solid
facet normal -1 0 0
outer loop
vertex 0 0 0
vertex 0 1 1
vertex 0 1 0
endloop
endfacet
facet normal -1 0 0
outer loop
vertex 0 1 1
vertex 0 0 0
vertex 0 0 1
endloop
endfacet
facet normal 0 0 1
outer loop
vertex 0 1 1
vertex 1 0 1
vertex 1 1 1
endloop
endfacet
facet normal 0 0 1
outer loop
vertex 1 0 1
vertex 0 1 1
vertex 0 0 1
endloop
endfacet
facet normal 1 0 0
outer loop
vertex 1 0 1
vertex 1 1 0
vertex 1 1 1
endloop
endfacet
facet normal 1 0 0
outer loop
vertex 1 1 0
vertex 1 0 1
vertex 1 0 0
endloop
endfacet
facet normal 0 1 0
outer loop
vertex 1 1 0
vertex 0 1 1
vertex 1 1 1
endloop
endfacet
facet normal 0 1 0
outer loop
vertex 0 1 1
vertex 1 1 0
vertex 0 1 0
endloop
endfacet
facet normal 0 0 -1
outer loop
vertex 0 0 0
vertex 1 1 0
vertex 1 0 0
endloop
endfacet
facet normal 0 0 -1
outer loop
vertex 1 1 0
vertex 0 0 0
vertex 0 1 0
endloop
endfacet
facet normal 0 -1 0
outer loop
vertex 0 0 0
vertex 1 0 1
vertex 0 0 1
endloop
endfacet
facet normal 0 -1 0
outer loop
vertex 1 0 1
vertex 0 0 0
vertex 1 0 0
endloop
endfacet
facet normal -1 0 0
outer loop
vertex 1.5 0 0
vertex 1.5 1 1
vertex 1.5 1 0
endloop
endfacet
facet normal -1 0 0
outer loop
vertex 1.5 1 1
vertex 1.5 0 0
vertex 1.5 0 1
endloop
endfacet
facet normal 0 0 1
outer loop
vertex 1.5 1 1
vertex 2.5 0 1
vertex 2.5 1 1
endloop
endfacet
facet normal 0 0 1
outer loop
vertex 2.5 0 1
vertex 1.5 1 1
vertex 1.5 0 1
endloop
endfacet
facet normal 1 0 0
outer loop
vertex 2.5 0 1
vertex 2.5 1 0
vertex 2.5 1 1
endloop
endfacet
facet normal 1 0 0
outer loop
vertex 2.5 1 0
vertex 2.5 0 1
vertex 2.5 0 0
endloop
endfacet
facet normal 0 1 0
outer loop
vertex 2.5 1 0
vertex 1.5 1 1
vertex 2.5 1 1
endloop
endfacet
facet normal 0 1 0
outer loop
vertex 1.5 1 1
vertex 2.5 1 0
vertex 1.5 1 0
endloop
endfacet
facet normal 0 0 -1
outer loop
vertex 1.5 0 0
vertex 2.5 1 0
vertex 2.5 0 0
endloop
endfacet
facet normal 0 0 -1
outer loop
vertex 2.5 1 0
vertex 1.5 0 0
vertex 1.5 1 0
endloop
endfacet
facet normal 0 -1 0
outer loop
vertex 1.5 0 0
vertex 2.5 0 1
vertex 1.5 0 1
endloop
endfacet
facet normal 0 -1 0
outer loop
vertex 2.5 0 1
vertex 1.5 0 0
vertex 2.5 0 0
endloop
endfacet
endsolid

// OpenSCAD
union() {
	cube();
	translate(v = [1.5000000000, 0, 0]) {
		cube();
	}
}
